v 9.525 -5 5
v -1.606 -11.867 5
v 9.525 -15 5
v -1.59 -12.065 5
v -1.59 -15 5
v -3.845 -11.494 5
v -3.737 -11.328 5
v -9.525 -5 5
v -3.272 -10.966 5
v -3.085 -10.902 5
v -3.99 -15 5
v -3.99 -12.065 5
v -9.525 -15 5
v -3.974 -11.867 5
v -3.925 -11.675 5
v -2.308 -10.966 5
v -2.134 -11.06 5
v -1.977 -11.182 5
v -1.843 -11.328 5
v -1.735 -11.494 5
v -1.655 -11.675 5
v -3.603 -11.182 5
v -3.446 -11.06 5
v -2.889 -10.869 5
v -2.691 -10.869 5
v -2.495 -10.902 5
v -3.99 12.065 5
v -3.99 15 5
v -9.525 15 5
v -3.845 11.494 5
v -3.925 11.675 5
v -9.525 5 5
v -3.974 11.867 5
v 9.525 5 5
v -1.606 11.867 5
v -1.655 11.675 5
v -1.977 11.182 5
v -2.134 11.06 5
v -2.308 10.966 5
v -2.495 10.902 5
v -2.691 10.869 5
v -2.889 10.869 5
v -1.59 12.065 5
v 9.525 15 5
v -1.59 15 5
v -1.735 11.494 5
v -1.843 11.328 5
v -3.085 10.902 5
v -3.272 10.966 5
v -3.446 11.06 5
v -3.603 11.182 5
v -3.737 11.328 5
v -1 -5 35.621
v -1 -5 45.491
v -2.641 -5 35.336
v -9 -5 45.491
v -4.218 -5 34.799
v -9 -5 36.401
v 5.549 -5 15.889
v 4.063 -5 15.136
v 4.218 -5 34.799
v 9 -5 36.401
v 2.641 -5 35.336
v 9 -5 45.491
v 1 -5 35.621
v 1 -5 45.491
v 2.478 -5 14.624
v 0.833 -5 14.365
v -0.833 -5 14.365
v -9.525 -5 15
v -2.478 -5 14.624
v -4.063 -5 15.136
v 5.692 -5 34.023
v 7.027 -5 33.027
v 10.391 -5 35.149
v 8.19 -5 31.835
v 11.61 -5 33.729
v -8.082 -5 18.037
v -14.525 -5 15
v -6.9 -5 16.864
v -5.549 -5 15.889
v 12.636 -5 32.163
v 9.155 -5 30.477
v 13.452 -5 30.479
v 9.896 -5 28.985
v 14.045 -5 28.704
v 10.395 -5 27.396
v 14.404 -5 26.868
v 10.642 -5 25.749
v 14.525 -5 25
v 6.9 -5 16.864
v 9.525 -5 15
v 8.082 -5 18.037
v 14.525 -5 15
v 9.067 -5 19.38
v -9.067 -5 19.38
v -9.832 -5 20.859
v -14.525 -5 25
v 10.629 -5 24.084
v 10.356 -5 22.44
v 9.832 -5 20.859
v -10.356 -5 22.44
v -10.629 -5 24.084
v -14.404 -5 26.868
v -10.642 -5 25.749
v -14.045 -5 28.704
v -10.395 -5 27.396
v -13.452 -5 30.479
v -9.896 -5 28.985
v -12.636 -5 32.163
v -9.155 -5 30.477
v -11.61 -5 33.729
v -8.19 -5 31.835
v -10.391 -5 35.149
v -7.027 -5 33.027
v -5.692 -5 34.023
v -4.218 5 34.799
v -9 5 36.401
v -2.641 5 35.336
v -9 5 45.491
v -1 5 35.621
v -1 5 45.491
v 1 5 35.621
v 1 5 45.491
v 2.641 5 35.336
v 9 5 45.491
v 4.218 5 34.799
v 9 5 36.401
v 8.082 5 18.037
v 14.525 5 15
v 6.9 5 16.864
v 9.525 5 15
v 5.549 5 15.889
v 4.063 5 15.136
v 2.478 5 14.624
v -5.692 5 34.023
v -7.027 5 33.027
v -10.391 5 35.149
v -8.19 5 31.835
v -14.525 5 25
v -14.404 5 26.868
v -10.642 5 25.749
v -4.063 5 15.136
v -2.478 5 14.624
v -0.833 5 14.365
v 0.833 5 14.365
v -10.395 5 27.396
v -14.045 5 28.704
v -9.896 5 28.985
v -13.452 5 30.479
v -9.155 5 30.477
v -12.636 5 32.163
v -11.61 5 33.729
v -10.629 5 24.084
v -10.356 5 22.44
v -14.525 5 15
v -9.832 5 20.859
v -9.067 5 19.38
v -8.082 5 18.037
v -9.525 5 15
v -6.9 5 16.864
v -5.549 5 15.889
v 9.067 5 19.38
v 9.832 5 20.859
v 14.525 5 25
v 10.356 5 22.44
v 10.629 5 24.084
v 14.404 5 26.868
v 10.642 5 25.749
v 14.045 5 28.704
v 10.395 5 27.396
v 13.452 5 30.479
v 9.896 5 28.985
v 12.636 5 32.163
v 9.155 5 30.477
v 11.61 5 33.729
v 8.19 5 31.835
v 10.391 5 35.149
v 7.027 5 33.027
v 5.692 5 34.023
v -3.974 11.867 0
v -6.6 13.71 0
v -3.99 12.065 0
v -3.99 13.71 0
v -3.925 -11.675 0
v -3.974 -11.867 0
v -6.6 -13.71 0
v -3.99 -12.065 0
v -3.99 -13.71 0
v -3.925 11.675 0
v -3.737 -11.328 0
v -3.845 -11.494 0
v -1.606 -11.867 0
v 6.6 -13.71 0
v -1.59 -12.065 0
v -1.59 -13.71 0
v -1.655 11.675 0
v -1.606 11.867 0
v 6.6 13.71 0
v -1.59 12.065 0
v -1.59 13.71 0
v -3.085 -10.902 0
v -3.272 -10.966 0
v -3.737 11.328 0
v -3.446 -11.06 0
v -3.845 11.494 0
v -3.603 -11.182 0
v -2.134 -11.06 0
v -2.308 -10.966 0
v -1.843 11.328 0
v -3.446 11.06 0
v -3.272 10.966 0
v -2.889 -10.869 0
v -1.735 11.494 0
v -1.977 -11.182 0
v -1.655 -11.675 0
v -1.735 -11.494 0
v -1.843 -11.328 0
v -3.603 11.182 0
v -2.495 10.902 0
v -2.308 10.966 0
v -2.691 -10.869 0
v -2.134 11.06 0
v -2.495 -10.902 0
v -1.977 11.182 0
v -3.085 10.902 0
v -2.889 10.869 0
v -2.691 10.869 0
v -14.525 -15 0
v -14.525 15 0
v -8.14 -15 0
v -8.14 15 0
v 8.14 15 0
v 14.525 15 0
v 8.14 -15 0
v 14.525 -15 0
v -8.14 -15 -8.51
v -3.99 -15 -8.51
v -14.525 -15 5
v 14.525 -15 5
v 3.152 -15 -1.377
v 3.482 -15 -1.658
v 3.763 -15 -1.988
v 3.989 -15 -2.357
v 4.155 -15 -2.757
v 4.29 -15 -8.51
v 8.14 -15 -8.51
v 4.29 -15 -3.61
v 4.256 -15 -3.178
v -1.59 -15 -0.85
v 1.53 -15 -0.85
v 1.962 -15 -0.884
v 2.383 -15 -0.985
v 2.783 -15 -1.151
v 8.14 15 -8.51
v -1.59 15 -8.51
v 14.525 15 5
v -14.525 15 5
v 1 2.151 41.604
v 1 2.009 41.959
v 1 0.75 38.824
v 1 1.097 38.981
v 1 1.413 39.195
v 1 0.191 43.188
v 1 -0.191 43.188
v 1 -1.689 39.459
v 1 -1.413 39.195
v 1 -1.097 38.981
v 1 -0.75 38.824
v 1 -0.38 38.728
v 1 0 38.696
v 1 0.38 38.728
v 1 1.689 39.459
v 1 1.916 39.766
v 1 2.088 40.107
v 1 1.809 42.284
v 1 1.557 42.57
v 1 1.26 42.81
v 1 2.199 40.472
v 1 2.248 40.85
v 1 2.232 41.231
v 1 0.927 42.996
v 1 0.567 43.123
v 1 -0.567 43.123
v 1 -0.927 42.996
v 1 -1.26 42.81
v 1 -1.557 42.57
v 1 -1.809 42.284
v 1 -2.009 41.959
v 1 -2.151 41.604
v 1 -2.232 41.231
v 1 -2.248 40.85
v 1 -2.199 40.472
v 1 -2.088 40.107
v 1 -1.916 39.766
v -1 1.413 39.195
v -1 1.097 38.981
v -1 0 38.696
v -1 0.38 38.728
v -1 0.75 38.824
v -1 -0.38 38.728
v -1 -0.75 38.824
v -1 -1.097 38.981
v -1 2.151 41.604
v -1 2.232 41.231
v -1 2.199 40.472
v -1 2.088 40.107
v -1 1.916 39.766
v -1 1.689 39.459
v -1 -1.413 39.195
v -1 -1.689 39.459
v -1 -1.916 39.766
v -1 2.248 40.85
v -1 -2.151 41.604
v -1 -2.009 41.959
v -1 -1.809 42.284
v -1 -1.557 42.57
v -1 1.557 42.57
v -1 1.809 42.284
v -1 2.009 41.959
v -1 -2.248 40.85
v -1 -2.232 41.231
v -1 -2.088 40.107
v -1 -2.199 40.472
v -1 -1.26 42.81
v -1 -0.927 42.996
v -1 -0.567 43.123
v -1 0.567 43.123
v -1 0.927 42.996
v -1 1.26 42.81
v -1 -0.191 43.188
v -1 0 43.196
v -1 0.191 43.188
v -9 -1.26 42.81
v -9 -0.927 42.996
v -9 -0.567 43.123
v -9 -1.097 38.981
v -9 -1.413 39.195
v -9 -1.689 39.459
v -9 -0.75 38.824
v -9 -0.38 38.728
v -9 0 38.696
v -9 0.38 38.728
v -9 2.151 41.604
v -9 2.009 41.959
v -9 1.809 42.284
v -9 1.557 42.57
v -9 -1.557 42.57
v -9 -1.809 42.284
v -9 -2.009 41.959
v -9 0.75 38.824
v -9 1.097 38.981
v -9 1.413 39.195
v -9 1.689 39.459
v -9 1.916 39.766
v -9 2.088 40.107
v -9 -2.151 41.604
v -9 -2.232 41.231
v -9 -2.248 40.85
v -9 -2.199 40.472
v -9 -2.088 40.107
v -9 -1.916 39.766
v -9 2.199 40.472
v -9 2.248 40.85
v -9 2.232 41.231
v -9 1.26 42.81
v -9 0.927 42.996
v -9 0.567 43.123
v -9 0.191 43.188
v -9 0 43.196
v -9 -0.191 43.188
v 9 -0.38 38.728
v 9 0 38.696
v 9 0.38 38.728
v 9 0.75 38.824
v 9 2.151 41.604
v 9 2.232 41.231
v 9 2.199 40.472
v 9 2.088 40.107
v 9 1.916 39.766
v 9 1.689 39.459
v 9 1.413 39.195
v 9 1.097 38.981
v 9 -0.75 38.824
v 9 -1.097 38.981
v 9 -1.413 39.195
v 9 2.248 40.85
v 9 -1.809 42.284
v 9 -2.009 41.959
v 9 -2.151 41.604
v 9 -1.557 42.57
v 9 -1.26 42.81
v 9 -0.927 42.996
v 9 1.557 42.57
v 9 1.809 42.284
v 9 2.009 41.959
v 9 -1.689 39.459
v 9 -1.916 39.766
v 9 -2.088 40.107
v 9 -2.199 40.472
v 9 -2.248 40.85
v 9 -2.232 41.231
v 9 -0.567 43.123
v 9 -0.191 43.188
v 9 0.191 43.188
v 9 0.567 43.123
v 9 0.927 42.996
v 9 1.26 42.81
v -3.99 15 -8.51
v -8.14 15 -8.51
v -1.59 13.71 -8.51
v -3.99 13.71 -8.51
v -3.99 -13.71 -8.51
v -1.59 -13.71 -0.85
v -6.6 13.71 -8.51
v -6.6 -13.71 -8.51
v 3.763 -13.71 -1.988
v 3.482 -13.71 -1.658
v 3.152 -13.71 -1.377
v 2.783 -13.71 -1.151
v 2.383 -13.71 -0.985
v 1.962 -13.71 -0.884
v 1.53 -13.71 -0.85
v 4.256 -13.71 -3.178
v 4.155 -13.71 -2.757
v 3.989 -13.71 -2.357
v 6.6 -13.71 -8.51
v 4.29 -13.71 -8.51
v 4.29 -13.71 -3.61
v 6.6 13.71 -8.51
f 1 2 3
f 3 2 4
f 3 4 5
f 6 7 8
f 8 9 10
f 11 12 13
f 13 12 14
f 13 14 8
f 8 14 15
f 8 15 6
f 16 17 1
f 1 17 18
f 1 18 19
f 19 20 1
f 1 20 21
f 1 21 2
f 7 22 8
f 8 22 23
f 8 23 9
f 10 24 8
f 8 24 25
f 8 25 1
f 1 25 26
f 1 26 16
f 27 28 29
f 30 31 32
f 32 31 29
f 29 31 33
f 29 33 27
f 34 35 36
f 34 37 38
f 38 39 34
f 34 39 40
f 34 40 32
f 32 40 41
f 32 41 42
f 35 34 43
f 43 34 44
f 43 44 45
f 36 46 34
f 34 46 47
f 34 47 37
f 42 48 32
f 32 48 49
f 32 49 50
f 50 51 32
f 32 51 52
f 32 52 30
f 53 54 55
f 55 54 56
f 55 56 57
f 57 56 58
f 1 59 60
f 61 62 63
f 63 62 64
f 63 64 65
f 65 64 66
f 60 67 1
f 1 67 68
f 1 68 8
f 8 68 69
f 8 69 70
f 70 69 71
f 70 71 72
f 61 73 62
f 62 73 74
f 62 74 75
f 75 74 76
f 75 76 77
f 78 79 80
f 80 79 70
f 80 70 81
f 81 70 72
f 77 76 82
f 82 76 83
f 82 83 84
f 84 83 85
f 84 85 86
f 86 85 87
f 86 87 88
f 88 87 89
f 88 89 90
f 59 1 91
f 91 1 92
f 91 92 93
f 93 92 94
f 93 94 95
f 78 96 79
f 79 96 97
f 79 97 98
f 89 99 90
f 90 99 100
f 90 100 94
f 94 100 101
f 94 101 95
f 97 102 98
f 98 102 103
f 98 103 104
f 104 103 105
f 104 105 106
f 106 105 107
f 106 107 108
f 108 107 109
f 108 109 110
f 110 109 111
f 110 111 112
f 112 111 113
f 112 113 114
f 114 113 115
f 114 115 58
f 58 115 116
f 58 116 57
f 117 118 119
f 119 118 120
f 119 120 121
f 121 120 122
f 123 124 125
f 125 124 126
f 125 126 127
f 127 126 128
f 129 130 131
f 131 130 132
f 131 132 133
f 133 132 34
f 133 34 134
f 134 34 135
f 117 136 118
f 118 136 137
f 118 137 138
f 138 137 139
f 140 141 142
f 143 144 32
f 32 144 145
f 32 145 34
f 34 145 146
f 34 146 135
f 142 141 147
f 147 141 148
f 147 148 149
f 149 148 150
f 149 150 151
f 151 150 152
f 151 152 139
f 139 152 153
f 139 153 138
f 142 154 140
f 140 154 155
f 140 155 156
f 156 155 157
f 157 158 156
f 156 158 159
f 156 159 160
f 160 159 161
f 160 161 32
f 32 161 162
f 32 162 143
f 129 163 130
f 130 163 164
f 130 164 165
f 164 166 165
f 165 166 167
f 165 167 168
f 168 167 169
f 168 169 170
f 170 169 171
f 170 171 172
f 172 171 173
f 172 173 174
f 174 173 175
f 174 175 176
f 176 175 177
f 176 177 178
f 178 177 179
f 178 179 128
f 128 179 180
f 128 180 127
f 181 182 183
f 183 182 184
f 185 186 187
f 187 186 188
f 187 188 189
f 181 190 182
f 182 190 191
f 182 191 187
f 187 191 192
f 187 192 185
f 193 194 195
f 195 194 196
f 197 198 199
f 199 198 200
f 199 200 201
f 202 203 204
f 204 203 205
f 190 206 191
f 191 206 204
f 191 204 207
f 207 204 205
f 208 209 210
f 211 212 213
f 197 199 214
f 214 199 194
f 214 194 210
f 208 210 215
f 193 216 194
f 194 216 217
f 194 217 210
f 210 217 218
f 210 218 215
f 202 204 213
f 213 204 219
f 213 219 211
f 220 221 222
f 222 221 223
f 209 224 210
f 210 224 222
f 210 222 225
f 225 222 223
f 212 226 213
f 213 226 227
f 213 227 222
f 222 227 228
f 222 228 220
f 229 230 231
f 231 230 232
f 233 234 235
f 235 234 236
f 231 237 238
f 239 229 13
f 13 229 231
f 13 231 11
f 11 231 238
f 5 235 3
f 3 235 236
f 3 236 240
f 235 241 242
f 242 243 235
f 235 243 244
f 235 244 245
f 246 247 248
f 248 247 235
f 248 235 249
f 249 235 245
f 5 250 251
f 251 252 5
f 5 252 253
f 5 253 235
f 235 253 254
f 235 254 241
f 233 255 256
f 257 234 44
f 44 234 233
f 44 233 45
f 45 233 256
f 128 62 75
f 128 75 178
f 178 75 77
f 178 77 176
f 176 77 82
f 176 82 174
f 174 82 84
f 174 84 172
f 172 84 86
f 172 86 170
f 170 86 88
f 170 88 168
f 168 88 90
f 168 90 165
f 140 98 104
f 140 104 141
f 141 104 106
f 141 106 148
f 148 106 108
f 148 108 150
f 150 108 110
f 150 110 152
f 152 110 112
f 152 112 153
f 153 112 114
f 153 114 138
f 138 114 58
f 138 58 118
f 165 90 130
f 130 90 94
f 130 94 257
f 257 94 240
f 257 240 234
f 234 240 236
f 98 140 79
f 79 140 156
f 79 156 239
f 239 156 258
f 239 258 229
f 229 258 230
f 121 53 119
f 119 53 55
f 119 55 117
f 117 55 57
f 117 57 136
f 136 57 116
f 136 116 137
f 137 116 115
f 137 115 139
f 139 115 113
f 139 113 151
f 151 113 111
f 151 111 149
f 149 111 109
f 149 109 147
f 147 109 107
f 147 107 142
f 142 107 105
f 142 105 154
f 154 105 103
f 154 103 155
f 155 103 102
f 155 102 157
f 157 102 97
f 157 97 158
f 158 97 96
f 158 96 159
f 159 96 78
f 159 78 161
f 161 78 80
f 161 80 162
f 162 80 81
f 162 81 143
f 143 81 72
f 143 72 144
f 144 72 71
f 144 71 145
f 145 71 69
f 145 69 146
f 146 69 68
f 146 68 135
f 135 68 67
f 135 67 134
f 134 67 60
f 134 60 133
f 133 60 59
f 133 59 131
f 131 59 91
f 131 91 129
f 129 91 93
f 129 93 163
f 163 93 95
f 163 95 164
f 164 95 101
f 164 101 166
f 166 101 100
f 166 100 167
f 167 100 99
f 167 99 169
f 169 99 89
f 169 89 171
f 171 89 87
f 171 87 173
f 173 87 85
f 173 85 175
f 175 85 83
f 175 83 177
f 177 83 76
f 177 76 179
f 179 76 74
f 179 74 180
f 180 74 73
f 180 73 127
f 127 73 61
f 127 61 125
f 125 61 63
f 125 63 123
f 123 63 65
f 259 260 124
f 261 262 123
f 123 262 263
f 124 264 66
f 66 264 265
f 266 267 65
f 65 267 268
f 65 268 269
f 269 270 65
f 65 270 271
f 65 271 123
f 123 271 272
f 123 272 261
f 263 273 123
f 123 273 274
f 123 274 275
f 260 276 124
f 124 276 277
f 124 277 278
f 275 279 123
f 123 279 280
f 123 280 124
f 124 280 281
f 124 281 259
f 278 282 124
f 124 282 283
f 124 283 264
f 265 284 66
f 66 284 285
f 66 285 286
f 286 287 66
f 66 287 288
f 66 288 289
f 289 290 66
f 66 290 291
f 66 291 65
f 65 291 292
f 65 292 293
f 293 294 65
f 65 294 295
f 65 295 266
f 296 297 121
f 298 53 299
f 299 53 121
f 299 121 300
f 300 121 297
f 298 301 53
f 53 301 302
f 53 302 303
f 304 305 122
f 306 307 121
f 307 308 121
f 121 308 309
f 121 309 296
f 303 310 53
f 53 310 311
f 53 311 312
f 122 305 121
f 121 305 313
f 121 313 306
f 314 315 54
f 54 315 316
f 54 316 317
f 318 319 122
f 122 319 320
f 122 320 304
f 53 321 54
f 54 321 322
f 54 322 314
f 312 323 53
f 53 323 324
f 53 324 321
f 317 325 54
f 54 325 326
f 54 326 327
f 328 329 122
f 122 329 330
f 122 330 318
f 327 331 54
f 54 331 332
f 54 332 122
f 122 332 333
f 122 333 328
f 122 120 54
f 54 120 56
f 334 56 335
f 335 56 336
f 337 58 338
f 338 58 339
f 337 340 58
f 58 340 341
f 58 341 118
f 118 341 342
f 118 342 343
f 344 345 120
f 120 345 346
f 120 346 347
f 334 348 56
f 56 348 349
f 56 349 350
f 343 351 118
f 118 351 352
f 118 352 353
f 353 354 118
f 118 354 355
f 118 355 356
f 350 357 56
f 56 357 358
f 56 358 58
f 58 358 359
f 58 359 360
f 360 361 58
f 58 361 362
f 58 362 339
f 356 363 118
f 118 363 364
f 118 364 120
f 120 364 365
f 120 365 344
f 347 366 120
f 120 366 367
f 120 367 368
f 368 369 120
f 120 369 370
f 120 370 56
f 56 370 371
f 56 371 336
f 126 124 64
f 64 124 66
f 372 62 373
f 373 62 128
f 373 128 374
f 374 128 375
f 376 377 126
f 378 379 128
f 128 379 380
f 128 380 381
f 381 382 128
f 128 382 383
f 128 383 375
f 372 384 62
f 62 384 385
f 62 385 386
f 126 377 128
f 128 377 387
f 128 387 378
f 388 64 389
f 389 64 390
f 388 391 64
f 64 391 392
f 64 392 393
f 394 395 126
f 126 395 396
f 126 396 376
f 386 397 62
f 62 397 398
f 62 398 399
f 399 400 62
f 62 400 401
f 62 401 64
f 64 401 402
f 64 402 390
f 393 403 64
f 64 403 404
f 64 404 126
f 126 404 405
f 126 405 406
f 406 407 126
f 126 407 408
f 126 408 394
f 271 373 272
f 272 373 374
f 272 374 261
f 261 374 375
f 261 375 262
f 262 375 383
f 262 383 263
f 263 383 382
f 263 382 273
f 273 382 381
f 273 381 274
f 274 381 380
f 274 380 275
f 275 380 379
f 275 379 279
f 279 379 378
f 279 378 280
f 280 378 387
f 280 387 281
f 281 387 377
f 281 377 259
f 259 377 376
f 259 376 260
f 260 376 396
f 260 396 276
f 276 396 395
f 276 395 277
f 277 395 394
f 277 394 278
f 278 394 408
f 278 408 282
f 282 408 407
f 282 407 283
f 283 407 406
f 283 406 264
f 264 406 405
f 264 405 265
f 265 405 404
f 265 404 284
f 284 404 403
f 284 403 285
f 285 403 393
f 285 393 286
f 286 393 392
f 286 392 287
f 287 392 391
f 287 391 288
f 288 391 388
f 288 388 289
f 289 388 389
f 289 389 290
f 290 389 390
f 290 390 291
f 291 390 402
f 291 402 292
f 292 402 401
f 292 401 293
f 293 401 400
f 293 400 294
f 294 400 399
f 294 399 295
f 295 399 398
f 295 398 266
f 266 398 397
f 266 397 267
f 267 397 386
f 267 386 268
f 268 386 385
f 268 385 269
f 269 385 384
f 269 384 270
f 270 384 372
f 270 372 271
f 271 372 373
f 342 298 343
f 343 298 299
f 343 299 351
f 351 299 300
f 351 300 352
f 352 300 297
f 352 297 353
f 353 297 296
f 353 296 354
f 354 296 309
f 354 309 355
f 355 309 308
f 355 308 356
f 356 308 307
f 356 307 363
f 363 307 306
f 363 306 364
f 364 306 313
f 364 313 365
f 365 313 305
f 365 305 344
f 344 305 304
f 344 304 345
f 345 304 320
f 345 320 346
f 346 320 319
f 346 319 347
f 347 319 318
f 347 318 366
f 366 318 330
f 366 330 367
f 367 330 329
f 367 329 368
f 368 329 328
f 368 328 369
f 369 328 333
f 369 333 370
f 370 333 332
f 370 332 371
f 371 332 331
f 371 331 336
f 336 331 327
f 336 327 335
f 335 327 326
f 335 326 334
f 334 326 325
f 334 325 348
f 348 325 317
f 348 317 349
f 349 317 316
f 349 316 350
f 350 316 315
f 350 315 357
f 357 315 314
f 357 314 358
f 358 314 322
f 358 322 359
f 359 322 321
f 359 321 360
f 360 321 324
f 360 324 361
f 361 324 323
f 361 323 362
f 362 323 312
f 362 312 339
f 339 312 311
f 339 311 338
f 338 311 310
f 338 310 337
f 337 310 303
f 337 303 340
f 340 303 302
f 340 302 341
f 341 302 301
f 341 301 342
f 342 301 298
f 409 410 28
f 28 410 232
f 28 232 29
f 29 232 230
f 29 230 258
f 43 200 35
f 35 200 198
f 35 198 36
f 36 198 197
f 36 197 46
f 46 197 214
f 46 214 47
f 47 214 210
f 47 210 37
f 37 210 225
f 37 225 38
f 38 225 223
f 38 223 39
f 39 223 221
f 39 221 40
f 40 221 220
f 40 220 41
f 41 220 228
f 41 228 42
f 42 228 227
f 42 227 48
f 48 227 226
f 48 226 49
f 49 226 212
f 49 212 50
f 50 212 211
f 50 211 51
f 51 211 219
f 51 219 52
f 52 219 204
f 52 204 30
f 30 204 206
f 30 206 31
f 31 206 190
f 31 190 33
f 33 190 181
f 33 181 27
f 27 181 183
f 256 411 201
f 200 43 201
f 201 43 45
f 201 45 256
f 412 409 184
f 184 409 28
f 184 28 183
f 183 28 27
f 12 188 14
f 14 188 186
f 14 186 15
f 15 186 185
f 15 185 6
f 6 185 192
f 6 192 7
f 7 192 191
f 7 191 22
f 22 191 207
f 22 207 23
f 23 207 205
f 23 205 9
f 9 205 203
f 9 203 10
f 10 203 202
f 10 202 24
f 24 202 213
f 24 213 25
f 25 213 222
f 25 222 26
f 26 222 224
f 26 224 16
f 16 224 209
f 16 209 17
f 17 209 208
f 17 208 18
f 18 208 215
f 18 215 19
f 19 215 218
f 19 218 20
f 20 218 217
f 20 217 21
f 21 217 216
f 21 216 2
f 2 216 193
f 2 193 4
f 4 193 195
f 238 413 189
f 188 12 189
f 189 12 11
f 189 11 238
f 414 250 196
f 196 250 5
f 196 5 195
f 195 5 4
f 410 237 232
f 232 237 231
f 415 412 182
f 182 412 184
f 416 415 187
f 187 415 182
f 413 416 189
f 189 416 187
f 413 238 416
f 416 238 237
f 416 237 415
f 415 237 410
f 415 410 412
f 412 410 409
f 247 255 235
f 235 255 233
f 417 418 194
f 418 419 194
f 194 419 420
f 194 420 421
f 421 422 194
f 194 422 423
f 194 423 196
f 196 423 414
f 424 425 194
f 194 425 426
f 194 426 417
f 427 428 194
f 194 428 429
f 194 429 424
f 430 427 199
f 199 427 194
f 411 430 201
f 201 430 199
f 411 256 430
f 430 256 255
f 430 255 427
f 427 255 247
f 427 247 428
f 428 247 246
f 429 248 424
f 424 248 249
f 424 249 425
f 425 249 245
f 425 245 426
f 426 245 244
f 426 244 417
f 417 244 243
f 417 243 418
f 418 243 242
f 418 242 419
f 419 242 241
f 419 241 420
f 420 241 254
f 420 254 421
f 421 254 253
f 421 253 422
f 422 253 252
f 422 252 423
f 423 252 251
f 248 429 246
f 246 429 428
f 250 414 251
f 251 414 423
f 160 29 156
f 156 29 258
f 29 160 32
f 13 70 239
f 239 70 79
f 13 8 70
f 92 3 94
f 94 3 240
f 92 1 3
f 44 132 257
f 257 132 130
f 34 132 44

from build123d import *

# Parameters (mm, degrees)
CROQUIS1_R              = 10.668
SALIENTE_EXTRUIR1_DEPTH = 5
CROQUIS7_W              = 2
CROQUIS7_H              = 8
CORTAR_EXTRUIR5_DEPTH   = 44.28049503
SALIENTE_EXTRUIR3_DEPTH = 10
CORTAR_EXTRUIR6_REACH   = 53.457
CROQUIS9_R              = 2.25
SALIENTE_EXTRUIR4_DEPTH = 10
CROQUIS11_W             = 29.05
CROQUIS11_H             = 10
SALIENTE_EXTRUIR5_DEPTH = 5
CORTAR_EXTRUIR7_REACH   = 52.054
SALIENTE_EXTRUIR6_DEPTH = 8.51
CORTAR_EXTRUIR8_REACH   = 58.395
SALIENTE_EXTRUIR7_DEPTH = 5


with BuildPart() as part:
    # Croquis1 → Saliente-Extruir1 (new, symmetric)
    with BuildSketch(Plane(origin=(0, 0, 0), x_dir=(1, 0, 0), z_dir=(0, 1, 0))):
        with BuildLine():
            Line((14.525, 0), (-14.525, 0))
            Line((-14.525, 0), (-14.525, -10))
            Line((-14.525, -10), (-5, -10))
            Line((-5, -10), (-5, -11.362711963))
            ThreePointArc((-5, -11.362711963), (0, -39.525), (5, -11.362711963))
            Line((5, -11.362711963), (5, -10))
            Line((5, -10), (14.525, -10))
            Line((14.525, -10), (14.525, 0))
        make_face()
        with Locations(Location((0, -25, 0), (0, 0, 270))):
            Circle(CROQUIS1_R, mode=Mode.SUBTRACT)
    extrude(amount=SALIENTE_EXTRUIR1_DEPTH, both=True)

    # Croquis7 → Cortar-Extruir5 (cut, through all)
    with BuildSketch(Plane(origin=(0, 5, 0), x_dir=(1, 0, 0), z_dir=(0, 1, 0))):
        with Locations((0, -37.5965)):
            Rectangle(CROQUIS7_W, CROQUIS7_H)
    extrude(amount=-CORTAR_EXTRUIR5_DEPTH, mode=Mode.SUBTRACT)

    # Croquis8 → Saliente-Extruir3 (add)
    with BuildSketch(Plane(origin=(0, 5, 0), x_dir=(1, 0, 0), z_dir=(0, 1, 0))):
        with BuildLine():
            Line((-1, -39.490535704), (-1, -45.490535704))
            Line((-1, -45.490535704), (-9, -45.490535704))
            Line((-9, -45.490535704), (-9, -36.400685286))
            ThreePointArc((-9, -36.400685286), (-5.233239332, -38.549495603), (-1, -39.490535704))
        make_face()
        with BuildLine():
            Line((9, -45.490535704), (9, -36.400685286))
            ThreePointArc((9, -36.400685286), (5.233239332, -38.549495603), (1, -39.490535704))
            Line((1, -39.490535704), (1, -45.490535704))
            Line((1, -45.490535704), (9, -45.490535704))
        make_face()
    extrude(amount=-SALIENTE_EXTRUIR3_DEPTH)

    # Cortar-Extruir6: up to this face of the body (flat: up to its plane)
    cortar_extruir6_end = Plane(part.part.faces().sort_by_distance((-9, 0, 40.945610495))[0])
    # Croquis9 → Cortar-Extruir6 (cut, up to the picked face)
    with BuildSketch(Plane(origin=(9, 0, 0), x_dir=(0, 0, -1), z_dir=(1, 0, 0)), mode=Mode.PRIVATE) as cortar_extruir6_sk1:
        with Locations((-40.945610495, 0)):
            Circle(CROQUIS9_R)
    cortar_extruir6_tool1 = split(extrude(cortar_extruir6_sk1.sketch, amount=-CORTAR_EXTRUIR6_REACH, mode=Mode.PRIVATE), bisect_by=cortar_extruir6_end, keep=Keep.BOTH, mode=Mode.PRIVATE)
    add(cortar_extruir6_tool1.solids().sort_by(Axis((9, 0, 40.94561), (-1, 0, 0)))[0], mode=Mode.SUBTRACT)

    # Croquis10 → Saliente-Extruir4 (add)
    with BuildSketch(Plane(origin=(0, 5, 0), x_dir=(1, 0, 0), z_dir=(0, 1, 0))):
        with BuildLine():
            Line((-14.525, -10), (-14.525, -25))
            ThreePointArc((-14.525, -25), (-11.907993639, -16.682830259), (-5, -11.362711963))
            Line((-5, -11.362711963), (-5, -10))
            Line((-5, -10), (-14.525, -10))
        make_face()
        with BuildLine():
            Line((14.525, -10), (5, -10))
            Line((5, -10), (5, -11.362711963))
            ThreePointArc((5, -11.362711963), (11.907993639, -16.682830259), (14.525, -25))
            Line((14.525, -25), (14.525, -10))
        make_face()
    extrude(amount=-SALIENTE_EXTRUIR4_DEPTH)

    # Croquis11 → Saliente-Extruir5 (add)
    with BuildSketch(Plane(origin=(0, 0, 0), x_dir=(-1, 0, 0), z_dir=(0, 0, -1))):
        with Locations((0, 10)):
            Rectangle(CROQUIS11_W, CROQUIS11_H)
    saliente_extruir5 = extrude(amount=-SALIENTE_EXTRUIR5_DEPTH)

    # Croquis13 → Cortar-Extruir7 (cut, up to next)
    with BuildSketch(Plane(origin=(0, 0, 0), x_dir=(-1, 0, 0), z_dir=(0, 0, -1)), mode=Mode.PRIVATE) as cortar_extruir7_sk1:
        with BuildLine():
            Line((1.59, 12.065), (1.59, 15))
            Line((1.59, 15), (3.99, 15))
            Line((3.99, 15), (3.99, 12.065))
            ThreePointArc((3.99, 12.065), (2.79, 10.865), (1.59, 12.065))
        make_face()
    cortar_extruir7_tool1 = extrude(cortar_extruir7_sk1.sketch, amount=-CORTAR_EXTRUIR7_REACH, mode=Mode.PRIVATE) & part.part
    cortar_extruir7 = cortar_extruir7_tool1.solids().sort_by_distance((-2.79, 13.052011, 0))[0]
    add(cortar_extruir7, mode=Mode.SUBTRACT)

    # Simetría1: Saliente-Extruir5, Cortar-Extruir7 across plane
    add(saliente_extruir5.mirror(Plane.ZX))
    add(cortar_extruir7.mirror(Plane.ZX), mode=Mode.SUBTRACT)

    # Croquis14 → Saliente-Extruir6 (add)
    with BuildSketch(Plane(origin=(0, 0, 0), x_dir=(-1, 0, 0), z_dir=(0, 0, -1))):
        Polygon((1.59, -13.71), (-6.6, -13.71), (-6.6, 13.71), (1.59, 13.71), (1.59, 15), (-8.14, 15), (-8.14, -15), (1.59, -15), align=None)
        Polygon((6.6, -13.71), (3.99, -13.71), (3.99, -15), (8.14, -15), (8.14, 15), (3.99, 15), (3.99, 13.71), (6.6, 13.71), align=None)
    extrude(amount=SALIENTE_EXTRUIR6_DEPTH)

    # Croquis15 → Cortar-Extruir8 (cut, up to next)
    with BuildSketch(Plane.XZ.offset(15), mode=Mode.PRIVATE) as cortar_extruir8_sk1:
        with BuildLine():
            Line((4.29, -3.61), (4.29, -8.51))
            Line((4.29, -8.51), (-1.59, -8.51))
            Line((-1.59, -8.51), (-1.59, -0.85))
            Line((-1.59, -0.85), (1.53, -0.85))
            ThreePointArc((1.53, -0.85), (3.481614716, -1.658385284), (4.29, -3.61))
        make_face()
    cortar_extruir8_tool1 = extrude(cortar_extruir8_sk1.sketch, amount=-CORTAR_EXTRUIR8_REACH, mode=Mode.PRIVATE) & part.part
    add(cortar_extruir8_tool1.solids().sort_by_distance((1.262493, -15, -4.801026))[0], mode=Mode.SUBTRACT)

    # Croquis16 → Saliente-Extruir7 (add)
    with BuildSketch(Plane.ZY.offset(14.525)):
        Polygon((5, 15), (15, 5), (5, 5), align=None)
        Polygon((15, -5), (5, -5), (5, -15), align=None)
    saliente_extruir7 = extrude(amount=-SALIENTE_EXTRUIR7_DEPTH)

    # Simetría2: Saliente-Extruir7 across plane
    add(saliente_extruir7.mirror(Plane(origin=(0, 0, 0), x_dir=(0, 0, 1), z_dir=(1, 0, 0))))


solid = part.part
